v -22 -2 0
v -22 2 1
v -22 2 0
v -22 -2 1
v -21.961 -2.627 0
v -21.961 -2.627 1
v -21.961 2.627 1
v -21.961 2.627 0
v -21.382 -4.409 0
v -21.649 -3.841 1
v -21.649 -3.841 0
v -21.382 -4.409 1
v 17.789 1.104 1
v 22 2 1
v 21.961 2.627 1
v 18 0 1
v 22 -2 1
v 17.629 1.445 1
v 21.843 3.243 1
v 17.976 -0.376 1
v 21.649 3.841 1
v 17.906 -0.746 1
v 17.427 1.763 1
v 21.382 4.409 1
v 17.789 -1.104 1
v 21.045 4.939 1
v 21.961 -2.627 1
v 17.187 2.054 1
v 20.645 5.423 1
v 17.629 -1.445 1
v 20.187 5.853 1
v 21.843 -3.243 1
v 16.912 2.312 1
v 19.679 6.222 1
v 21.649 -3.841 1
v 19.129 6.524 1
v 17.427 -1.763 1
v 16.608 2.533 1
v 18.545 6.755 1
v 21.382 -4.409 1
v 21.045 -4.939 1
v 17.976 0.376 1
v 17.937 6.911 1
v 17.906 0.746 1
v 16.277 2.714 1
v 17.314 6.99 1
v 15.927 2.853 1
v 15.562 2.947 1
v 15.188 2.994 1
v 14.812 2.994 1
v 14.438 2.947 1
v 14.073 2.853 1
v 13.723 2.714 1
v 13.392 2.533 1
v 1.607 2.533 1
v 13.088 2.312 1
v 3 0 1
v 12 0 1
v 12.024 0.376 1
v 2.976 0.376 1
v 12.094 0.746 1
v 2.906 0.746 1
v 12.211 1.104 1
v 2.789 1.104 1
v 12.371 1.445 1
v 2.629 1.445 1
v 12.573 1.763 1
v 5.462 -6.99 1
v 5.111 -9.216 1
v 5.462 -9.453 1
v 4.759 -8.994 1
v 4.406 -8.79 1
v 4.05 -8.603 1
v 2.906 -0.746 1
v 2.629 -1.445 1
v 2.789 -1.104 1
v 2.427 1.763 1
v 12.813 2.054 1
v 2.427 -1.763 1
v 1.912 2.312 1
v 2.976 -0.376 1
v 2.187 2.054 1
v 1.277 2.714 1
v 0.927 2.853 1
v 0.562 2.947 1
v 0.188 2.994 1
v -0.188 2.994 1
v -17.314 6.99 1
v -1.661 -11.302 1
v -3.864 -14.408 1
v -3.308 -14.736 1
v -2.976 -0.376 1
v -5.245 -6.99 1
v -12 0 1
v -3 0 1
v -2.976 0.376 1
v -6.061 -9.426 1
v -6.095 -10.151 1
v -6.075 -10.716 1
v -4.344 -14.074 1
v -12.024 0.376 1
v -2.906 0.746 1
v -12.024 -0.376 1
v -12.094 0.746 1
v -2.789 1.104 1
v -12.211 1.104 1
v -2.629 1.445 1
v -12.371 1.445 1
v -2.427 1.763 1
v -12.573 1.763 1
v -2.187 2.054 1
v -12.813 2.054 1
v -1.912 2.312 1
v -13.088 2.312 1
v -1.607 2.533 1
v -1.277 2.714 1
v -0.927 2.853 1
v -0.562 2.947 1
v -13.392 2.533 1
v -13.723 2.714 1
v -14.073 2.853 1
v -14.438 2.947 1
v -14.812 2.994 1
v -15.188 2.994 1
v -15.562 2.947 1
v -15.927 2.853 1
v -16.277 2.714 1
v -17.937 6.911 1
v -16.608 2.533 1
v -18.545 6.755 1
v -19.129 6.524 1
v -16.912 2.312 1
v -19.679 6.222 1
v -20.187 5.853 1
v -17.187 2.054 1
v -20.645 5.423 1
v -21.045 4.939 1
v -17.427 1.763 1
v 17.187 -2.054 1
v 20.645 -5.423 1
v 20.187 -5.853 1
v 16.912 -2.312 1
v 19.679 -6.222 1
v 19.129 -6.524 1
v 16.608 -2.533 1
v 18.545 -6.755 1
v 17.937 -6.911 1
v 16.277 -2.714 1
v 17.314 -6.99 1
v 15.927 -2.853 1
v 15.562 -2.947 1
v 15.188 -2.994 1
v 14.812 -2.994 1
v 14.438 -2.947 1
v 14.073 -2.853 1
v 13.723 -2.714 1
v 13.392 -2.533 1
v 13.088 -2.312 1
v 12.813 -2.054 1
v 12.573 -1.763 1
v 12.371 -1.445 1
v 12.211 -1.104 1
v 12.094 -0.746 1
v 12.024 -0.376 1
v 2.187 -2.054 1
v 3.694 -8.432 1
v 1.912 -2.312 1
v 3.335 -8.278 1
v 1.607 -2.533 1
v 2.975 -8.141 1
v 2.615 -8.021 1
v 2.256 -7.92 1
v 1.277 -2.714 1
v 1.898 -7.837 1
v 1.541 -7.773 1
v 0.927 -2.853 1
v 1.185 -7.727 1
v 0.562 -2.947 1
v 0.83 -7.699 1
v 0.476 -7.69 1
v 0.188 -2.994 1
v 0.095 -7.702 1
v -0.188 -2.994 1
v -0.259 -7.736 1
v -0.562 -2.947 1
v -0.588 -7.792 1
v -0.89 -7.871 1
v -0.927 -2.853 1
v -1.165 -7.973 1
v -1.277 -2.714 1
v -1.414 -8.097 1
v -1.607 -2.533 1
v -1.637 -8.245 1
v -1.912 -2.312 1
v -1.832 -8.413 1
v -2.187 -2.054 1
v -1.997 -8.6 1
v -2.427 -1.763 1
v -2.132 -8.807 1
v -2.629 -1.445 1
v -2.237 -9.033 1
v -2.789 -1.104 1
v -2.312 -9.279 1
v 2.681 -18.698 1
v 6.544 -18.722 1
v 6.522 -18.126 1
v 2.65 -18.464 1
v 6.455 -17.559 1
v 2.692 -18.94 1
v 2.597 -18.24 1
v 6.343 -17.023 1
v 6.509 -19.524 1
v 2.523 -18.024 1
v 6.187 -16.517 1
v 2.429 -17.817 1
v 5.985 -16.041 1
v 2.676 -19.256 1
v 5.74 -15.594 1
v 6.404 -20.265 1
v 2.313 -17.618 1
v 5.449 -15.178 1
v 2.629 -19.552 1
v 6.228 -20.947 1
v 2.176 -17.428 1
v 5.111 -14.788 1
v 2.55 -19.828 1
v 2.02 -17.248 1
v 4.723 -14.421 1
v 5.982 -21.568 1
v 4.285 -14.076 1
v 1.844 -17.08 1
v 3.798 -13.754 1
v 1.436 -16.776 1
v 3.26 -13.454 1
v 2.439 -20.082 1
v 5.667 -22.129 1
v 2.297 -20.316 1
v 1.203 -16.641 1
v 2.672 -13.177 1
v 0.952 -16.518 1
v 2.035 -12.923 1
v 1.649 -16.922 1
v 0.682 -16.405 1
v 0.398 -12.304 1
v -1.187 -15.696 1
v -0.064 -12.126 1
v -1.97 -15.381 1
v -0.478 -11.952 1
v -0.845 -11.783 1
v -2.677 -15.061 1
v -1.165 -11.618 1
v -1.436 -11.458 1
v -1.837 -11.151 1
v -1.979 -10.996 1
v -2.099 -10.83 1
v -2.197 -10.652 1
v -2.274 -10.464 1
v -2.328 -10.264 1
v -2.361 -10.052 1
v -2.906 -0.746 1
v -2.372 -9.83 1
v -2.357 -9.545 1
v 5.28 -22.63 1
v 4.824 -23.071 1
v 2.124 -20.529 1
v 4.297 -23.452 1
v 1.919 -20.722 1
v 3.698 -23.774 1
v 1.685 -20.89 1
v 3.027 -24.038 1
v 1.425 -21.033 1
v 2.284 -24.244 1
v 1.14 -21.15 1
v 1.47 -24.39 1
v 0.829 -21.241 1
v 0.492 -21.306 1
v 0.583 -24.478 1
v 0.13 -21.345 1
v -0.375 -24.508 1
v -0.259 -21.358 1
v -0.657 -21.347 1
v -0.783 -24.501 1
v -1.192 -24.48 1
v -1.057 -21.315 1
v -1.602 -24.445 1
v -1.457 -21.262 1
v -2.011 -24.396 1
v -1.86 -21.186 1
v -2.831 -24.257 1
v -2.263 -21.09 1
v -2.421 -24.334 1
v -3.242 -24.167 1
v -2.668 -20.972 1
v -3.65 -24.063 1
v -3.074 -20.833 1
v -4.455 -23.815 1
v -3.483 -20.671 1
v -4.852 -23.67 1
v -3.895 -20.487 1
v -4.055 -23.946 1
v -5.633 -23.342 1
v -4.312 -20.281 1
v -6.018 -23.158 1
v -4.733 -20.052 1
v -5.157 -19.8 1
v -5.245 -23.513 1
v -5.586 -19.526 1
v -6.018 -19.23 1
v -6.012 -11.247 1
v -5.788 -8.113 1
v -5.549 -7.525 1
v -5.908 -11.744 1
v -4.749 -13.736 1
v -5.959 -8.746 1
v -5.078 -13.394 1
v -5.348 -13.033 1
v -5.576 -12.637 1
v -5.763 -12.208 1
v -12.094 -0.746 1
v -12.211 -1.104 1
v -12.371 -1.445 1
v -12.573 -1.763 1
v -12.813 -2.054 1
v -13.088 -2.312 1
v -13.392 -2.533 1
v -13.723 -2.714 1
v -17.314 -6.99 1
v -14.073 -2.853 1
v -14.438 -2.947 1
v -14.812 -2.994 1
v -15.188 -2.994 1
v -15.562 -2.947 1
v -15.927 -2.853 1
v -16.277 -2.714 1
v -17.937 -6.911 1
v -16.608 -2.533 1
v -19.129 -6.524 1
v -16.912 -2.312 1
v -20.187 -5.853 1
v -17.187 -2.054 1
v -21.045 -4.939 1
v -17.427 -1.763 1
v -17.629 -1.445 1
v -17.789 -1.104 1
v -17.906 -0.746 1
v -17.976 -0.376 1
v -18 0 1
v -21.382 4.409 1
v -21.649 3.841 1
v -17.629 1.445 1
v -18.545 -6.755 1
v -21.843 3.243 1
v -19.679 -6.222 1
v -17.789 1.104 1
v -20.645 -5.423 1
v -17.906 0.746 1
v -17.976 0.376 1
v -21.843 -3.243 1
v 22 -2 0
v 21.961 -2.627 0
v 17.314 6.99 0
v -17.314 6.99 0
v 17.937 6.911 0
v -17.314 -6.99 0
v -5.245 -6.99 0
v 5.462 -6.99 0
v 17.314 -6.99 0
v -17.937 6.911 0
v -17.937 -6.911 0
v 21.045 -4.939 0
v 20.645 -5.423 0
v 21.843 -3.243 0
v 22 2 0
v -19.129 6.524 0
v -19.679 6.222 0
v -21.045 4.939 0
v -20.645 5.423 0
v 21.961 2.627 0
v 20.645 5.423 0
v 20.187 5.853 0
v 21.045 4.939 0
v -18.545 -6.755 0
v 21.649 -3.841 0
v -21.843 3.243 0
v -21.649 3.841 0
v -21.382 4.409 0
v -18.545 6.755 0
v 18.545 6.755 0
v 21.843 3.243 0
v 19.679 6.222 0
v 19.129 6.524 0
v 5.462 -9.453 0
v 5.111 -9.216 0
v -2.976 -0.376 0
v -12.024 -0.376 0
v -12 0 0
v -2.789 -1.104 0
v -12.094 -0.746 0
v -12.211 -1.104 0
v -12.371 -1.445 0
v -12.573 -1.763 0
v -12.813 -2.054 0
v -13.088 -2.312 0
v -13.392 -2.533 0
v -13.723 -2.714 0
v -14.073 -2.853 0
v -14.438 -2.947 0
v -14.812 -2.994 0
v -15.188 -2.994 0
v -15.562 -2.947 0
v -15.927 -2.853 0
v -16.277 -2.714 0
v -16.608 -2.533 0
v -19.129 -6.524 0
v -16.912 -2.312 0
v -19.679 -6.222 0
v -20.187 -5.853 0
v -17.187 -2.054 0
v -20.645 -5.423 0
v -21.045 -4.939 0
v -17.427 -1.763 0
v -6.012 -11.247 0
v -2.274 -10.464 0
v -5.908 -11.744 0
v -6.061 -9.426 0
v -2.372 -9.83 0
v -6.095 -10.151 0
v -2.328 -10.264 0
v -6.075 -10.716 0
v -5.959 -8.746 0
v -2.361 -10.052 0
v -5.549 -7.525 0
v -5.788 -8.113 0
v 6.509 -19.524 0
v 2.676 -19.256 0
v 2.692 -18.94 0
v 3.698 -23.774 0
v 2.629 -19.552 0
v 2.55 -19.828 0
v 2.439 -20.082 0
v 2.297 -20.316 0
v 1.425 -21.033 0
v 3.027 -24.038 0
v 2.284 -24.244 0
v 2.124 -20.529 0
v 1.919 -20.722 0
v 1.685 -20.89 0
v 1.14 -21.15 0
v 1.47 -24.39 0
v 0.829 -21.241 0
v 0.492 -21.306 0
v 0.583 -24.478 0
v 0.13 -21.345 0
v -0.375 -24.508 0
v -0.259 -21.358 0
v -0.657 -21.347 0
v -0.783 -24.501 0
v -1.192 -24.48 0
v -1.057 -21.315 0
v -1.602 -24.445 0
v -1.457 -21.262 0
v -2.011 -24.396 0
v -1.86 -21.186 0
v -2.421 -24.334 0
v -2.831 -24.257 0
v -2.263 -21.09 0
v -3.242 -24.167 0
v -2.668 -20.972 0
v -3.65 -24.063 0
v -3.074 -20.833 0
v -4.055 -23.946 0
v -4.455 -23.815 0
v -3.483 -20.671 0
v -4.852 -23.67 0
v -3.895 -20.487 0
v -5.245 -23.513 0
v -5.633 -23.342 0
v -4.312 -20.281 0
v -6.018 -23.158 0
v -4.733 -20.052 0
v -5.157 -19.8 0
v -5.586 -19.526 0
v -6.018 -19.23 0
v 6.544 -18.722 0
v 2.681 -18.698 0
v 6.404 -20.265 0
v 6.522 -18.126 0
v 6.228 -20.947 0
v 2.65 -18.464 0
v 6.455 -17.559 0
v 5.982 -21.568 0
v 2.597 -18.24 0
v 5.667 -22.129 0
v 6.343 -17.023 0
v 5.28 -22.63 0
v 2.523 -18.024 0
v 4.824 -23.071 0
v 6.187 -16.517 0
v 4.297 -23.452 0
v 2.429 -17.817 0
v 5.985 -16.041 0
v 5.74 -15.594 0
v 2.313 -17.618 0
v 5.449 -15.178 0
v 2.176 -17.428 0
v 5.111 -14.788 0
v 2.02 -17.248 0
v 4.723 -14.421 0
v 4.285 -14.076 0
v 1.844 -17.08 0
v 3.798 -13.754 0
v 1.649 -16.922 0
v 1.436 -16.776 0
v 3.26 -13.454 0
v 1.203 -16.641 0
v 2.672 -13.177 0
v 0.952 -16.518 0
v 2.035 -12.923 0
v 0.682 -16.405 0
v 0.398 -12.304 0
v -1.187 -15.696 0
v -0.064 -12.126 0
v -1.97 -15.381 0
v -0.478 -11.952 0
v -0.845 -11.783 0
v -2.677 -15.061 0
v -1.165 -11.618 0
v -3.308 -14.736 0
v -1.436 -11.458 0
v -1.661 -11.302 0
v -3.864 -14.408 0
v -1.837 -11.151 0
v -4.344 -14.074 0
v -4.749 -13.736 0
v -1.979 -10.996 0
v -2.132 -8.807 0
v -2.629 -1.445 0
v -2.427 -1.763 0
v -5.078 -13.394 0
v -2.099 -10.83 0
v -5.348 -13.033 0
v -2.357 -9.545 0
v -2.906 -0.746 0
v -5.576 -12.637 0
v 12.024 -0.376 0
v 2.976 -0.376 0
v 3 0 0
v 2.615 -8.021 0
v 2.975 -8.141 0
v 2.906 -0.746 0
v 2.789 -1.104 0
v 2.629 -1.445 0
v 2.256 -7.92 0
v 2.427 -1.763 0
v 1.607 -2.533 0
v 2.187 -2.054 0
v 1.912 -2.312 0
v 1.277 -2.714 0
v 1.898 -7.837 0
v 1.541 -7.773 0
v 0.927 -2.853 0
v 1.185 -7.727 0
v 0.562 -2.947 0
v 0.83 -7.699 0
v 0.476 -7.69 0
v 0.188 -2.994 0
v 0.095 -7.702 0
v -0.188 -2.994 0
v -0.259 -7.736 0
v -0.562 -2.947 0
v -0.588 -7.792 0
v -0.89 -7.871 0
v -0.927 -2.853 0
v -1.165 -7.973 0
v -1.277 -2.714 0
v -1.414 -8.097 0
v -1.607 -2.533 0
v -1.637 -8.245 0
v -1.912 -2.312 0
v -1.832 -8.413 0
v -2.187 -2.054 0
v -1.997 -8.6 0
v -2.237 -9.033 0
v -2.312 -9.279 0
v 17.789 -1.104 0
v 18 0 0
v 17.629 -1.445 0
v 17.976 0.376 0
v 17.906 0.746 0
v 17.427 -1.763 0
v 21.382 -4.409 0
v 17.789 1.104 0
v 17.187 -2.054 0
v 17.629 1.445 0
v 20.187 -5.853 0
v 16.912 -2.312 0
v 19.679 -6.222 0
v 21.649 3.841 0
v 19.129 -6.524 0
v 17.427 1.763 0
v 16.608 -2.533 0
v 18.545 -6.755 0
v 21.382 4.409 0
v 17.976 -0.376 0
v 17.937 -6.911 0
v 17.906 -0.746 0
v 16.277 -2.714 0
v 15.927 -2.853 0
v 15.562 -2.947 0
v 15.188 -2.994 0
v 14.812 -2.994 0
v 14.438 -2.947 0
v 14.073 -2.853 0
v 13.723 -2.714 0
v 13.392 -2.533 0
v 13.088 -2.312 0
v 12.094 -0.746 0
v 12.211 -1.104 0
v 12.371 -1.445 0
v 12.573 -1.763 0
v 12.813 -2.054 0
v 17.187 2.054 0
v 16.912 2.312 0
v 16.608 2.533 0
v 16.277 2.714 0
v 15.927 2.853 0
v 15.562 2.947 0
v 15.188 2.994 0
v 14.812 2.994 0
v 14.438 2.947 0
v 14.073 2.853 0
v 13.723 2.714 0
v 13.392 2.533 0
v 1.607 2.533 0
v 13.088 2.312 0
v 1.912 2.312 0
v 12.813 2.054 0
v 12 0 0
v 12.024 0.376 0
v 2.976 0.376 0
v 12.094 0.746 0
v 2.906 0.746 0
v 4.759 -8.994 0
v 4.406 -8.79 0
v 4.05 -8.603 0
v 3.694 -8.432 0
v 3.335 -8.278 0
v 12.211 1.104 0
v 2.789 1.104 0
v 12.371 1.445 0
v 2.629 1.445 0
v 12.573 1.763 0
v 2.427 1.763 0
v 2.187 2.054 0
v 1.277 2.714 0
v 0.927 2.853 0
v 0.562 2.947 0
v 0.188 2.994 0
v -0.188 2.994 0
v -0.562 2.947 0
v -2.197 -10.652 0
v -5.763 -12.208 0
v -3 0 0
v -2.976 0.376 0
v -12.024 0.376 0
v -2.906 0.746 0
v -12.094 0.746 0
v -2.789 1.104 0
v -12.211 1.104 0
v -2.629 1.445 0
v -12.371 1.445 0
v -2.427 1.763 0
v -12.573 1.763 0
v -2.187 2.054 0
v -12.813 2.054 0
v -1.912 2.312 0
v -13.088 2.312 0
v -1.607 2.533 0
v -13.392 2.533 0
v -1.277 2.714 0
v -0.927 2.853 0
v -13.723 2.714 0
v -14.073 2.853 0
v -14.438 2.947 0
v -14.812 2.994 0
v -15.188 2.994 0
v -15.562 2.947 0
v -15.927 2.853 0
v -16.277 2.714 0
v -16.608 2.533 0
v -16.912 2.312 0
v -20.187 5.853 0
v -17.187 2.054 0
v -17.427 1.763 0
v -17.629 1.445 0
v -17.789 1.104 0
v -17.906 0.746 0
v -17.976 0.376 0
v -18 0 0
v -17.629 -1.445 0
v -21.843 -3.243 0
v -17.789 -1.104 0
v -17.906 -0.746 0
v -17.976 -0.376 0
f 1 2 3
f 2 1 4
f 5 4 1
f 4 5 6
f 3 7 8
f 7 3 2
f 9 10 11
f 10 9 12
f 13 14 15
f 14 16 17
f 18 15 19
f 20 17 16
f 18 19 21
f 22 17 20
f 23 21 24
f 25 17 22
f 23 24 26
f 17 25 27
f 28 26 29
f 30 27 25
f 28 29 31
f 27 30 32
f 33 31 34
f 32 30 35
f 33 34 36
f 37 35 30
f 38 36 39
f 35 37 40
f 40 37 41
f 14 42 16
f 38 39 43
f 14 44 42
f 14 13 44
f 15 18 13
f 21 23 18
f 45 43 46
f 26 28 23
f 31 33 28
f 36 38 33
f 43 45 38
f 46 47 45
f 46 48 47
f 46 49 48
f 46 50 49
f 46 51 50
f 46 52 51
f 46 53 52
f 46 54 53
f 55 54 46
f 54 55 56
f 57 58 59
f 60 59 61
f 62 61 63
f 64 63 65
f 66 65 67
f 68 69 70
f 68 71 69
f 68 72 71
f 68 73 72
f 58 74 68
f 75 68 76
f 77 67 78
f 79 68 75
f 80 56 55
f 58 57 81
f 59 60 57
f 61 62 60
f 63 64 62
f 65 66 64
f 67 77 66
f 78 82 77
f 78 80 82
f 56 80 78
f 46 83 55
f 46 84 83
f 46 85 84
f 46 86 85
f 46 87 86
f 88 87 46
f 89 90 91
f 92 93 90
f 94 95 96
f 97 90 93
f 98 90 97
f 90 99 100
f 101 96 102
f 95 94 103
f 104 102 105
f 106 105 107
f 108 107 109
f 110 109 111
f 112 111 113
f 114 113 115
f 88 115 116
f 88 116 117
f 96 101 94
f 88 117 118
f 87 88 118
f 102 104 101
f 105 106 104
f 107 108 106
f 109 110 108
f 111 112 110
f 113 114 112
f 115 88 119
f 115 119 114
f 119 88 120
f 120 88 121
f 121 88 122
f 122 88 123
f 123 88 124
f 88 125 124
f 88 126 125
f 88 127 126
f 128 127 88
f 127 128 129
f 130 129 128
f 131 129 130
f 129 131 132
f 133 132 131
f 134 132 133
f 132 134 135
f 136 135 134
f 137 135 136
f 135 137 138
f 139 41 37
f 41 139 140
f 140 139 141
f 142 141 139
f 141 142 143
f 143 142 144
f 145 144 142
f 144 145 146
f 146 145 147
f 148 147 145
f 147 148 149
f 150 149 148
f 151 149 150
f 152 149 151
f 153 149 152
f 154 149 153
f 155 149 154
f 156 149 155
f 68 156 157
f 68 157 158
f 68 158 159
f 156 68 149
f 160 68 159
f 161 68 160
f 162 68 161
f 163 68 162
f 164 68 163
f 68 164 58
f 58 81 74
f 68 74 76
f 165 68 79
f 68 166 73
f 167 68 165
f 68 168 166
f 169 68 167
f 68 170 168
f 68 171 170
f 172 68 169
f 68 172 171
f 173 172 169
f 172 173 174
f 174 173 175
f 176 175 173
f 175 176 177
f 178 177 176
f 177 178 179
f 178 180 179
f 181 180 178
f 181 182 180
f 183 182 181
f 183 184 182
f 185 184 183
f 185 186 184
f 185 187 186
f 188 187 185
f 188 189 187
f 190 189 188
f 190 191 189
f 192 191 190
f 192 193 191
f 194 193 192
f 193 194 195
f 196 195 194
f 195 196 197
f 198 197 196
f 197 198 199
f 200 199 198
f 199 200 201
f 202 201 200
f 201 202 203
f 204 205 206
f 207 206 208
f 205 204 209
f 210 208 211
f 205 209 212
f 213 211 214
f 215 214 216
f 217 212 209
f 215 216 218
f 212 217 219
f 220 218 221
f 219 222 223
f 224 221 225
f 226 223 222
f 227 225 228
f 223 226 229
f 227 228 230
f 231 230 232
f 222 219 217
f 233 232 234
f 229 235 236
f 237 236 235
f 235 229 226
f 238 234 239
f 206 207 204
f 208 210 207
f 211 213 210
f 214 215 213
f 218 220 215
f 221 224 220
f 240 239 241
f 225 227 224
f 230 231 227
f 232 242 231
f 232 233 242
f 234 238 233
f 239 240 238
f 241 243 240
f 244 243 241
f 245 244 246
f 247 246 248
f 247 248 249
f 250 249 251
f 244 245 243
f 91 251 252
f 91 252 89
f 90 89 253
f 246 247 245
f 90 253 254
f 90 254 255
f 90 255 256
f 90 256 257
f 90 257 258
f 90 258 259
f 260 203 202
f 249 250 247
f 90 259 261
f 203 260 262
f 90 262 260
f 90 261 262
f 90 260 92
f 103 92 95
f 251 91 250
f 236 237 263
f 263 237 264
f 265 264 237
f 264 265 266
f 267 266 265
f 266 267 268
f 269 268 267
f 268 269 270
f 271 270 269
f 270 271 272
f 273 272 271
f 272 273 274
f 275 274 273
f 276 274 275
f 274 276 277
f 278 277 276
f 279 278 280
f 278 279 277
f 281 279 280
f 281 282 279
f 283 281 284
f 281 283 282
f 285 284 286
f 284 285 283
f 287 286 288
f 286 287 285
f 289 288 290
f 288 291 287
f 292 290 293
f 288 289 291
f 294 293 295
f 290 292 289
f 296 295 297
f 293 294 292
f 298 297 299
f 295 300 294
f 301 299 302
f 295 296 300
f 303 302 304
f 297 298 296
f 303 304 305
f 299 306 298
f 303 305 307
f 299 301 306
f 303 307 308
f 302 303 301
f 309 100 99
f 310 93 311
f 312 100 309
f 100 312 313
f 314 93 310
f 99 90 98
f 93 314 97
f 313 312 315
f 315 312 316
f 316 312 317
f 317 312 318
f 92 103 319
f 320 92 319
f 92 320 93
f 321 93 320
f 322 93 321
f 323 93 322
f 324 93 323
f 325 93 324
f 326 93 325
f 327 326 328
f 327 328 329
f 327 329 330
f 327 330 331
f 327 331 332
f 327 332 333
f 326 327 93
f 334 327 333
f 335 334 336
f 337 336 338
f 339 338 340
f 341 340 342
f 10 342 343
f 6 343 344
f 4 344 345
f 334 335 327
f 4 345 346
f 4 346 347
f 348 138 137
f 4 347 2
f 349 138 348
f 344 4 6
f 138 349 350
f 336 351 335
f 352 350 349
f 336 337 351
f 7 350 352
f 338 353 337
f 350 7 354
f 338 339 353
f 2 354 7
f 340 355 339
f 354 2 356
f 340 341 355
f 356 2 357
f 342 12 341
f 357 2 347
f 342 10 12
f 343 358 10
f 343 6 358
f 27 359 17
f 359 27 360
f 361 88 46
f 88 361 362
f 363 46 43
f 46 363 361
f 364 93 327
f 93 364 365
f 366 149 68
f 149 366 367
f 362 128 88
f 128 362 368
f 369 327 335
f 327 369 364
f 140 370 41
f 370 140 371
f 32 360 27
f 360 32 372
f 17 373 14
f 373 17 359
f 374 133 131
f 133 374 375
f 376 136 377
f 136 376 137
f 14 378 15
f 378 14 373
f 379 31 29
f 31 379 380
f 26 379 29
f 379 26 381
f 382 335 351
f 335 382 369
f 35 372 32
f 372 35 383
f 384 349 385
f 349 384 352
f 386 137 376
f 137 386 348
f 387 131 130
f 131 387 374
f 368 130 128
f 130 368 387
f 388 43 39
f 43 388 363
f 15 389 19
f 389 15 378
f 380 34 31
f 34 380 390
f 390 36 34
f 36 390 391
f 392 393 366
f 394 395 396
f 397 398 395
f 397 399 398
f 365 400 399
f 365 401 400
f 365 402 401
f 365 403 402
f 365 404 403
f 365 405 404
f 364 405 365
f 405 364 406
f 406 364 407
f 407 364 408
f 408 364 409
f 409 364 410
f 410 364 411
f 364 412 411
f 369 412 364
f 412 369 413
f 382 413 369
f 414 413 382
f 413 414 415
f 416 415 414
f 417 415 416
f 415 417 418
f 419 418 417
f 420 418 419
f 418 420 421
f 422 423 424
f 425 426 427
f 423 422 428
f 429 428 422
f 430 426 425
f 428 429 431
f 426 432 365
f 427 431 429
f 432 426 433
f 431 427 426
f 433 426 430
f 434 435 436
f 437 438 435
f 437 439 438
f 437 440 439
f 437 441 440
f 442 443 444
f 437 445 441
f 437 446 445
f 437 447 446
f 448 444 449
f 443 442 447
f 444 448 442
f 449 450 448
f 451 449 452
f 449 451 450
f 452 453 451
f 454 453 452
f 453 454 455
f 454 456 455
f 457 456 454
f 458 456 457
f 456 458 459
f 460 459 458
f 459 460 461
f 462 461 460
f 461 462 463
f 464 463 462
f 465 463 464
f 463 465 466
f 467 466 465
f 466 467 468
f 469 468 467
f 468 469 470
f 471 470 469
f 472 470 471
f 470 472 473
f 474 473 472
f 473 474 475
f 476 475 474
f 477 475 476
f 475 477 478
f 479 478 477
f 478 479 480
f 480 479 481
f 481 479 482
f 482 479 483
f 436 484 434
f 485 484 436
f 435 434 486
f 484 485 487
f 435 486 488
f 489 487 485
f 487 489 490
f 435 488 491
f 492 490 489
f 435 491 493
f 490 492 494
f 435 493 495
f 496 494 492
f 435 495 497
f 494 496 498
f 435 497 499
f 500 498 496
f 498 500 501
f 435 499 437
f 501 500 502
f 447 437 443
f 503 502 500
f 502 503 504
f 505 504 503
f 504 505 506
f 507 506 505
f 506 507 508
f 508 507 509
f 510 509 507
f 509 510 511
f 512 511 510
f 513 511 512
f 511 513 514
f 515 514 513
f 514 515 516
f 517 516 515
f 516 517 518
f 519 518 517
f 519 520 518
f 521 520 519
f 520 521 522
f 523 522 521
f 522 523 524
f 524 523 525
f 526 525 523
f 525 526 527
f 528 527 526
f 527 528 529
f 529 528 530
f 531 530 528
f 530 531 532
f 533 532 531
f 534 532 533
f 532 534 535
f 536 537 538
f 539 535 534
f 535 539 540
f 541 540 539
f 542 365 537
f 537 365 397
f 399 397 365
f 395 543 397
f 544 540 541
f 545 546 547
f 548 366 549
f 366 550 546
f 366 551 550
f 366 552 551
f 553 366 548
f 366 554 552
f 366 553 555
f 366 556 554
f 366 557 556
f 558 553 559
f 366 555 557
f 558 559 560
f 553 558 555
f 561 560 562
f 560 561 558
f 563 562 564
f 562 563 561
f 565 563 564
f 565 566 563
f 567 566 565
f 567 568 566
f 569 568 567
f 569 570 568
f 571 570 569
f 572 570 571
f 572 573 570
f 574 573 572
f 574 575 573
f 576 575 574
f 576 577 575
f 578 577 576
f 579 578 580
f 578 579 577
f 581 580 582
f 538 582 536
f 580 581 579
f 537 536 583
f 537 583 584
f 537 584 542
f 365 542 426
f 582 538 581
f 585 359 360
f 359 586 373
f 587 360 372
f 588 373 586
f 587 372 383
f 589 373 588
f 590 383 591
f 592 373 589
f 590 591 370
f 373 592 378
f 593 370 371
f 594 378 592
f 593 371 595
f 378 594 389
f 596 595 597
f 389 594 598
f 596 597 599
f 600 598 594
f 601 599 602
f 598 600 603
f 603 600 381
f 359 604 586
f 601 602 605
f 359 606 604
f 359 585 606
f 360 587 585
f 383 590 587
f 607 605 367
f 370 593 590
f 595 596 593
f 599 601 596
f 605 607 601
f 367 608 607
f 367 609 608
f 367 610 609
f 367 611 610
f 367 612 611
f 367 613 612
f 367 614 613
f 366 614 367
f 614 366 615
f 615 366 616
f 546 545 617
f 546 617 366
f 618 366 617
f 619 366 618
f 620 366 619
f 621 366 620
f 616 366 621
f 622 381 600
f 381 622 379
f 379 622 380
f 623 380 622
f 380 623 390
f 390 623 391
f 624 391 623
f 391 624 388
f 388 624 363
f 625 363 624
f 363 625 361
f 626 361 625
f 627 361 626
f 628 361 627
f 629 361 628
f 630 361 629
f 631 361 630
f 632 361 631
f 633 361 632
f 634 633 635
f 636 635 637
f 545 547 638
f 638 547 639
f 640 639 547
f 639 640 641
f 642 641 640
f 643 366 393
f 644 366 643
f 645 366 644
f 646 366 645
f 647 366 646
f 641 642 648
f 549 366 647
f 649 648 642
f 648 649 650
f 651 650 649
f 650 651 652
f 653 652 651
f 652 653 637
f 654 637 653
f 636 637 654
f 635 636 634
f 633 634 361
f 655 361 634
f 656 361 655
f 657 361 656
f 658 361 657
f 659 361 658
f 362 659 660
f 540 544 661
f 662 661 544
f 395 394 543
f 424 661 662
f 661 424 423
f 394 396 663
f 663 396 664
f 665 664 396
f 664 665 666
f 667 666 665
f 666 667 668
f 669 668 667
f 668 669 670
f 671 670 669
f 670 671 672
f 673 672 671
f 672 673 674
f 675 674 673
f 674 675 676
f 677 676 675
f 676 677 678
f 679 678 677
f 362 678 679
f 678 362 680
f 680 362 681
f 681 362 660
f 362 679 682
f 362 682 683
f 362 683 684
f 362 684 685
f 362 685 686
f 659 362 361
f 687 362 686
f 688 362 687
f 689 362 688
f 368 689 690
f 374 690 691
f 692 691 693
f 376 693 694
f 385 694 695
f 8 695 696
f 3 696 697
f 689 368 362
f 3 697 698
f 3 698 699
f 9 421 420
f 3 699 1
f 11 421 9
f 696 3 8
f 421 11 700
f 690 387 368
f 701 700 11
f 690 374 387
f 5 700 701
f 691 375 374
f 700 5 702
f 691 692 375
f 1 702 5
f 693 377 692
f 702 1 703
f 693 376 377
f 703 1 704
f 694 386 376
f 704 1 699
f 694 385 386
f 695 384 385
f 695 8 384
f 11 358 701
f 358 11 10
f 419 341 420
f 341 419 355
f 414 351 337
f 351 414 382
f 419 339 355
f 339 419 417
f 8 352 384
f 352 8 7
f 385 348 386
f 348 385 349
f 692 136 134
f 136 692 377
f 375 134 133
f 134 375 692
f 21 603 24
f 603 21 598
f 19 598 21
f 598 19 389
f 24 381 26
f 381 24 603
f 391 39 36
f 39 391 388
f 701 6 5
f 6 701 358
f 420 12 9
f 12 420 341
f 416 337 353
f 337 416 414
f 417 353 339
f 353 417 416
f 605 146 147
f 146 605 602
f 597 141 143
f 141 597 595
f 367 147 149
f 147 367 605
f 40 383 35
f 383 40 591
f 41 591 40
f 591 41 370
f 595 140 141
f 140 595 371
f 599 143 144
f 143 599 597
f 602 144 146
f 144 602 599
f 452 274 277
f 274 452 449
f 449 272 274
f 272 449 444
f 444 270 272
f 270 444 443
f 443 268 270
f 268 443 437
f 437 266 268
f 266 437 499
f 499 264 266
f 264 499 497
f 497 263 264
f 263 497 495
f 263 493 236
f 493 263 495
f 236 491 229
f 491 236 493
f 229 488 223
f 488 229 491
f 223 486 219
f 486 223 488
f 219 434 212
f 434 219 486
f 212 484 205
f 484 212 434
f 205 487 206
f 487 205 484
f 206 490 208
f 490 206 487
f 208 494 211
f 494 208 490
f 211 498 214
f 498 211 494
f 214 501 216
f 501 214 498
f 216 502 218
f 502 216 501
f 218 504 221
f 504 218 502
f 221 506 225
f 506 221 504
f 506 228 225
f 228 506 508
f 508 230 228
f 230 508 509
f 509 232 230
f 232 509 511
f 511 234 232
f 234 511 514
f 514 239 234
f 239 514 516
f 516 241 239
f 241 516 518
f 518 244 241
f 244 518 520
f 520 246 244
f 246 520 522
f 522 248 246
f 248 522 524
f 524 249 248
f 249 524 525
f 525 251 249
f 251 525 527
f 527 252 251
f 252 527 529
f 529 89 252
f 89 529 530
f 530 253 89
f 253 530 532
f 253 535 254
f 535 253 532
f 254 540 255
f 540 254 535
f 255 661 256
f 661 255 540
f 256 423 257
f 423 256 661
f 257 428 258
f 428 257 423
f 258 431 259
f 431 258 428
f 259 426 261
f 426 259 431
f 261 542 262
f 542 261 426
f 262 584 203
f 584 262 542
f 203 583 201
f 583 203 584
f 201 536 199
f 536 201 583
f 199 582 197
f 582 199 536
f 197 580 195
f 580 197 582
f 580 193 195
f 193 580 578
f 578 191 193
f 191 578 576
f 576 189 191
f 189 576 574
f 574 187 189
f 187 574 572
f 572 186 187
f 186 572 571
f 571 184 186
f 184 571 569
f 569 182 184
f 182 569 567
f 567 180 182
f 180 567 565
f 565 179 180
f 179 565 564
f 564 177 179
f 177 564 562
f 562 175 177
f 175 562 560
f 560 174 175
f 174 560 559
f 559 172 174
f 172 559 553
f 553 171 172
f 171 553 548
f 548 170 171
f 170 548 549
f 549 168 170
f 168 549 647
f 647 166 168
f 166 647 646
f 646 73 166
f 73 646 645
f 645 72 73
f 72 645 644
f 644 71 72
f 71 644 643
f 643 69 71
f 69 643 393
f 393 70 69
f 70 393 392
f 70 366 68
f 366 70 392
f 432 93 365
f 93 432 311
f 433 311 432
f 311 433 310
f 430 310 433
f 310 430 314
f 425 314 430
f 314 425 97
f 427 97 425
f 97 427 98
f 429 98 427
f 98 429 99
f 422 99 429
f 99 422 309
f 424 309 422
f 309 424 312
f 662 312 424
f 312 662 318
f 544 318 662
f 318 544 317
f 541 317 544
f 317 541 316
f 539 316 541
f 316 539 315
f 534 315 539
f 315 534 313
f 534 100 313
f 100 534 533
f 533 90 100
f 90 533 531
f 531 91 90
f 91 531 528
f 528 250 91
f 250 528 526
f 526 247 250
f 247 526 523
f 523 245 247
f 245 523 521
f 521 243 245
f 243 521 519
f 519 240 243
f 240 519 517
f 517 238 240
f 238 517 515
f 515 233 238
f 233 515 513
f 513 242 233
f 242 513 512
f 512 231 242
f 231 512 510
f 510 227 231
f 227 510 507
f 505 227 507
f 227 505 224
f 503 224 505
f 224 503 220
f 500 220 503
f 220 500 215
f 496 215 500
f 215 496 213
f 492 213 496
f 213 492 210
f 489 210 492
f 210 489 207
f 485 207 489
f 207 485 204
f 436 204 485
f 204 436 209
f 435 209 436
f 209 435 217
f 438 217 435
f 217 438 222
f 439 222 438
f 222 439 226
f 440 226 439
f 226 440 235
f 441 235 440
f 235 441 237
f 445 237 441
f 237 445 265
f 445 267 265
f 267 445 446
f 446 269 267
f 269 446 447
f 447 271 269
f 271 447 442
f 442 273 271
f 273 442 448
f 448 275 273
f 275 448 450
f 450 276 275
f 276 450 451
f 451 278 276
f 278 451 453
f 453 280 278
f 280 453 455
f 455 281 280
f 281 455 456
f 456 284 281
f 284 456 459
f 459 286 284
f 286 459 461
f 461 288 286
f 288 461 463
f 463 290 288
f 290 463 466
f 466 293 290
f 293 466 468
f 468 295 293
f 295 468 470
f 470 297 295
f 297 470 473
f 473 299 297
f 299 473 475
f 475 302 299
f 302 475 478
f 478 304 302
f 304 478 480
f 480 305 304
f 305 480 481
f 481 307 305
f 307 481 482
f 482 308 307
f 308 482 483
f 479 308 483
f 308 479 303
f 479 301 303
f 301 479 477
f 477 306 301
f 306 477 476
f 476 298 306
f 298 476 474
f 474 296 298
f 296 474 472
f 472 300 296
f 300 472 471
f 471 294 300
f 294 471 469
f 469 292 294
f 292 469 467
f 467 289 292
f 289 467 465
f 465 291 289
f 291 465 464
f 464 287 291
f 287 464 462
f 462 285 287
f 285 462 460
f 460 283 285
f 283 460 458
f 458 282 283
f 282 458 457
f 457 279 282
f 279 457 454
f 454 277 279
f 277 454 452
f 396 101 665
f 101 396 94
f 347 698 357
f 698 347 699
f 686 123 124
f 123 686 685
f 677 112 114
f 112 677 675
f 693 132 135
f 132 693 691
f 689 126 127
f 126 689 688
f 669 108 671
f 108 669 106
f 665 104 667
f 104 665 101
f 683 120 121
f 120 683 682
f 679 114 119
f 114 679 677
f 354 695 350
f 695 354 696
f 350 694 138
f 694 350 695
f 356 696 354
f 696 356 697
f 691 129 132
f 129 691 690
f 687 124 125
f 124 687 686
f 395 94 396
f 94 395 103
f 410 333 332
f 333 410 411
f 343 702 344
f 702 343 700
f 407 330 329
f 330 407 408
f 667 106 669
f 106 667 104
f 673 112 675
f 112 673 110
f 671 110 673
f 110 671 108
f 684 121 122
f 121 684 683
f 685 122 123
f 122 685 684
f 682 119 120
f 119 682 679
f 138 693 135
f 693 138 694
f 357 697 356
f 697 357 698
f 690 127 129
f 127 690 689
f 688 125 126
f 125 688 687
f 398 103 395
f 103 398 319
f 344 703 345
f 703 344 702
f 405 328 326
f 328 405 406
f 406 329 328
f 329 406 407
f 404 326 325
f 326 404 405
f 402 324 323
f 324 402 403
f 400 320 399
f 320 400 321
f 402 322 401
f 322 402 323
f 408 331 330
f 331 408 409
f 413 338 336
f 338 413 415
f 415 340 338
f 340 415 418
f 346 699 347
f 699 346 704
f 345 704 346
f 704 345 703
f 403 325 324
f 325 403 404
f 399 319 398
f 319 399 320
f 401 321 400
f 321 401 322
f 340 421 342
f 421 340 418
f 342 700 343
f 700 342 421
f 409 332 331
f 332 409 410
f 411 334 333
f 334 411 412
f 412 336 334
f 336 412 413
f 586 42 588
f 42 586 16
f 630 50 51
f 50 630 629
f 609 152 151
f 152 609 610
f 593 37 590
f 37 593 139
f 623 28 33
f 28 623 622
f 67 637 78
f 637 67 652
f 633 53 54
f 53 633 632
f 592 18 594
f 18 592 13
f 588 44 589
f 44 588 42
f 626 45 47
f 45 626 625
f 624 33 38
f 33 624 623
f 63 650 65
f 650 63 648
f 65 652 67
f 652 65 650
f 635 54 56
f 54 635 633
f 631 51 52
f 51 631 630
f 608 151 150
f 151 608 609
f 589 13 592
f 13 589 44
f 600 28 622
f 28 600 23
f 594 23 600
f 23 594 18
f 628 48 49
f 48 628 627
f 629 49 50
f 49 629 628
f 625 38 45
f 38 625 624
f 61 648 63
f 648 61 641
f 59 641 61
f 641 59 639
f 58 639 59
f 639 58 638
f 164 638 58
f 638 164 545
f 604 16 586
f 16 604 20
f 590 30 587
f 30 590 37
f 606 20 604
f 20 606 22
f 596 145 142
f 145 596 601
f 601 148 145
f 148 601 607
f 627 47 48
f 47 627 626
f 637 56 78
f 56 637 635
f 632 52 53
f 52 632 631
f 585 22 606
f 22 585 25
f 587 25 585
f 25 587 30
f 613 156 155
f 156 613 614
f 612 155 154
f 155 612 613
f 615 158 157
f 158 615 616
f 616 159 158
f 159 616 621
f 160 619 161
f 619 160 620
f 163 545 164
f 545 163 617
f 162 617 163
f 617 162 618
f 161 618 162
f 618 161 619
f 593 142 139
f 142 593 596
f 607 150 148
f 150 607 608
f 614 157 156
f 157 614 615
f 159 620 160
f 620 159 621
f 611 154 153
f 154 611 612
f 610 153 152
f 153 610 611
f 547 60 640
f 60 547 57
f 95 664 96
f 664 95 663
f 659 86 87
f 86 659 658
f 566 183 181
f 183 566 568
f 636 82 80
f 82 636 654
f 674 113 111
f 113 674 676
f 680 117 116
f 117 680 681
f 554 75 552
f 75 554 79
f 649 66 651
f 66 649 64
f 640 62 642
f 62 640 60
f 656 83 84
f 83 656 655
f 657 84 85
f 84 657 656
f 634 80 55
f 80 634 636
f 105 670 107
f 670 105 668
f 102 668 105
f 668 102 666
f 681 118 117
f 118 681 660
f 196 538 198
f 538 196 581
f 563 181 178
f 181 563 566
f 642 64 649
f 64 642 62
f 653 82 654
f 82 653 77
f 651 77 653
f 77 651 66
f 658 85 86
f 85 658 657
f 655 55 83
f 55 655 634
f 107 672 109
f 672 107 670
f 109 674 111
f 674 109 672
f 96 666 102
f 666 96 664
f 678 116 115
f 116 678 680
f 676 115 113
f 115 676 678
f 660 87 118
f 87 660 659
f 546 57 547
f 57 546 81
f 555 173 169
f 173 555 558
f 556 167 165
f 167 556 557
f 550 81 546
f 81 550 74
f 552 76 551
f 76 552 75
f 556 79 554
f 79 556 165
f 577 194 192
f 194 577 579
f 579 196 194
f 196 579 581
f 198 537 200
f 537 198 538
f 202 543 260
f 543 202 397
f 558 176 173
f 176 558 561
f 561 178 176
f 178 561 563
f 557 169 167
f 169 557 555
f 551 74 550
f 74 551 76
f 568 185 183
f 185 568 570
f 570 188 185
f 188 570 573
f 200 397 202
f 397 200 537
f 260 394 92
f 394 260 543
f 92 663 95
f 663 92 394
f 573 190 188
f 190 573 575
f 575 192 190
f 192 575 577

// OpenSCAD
$fn = 50;


difference() {
	union() {
		translate(v = [0, 0, 0]) {
			rotate(a = [0, 0, 0]) {
				hull() {
					translate(v = [-17.0000000000, 2.0000000000, 0]) {
						rotate(a = [0, 0, 0]) {
							translate(v = [0, 0, 0]) {
								rotate(a = [0, 0, 0]) {
									cylinder(h = 1, r = 5);
								}
							}
						}
					}
					translate(v = [17.0000000000, 2.0000000000, 0]) {
						rotate(a = [0, 0, 0]) {
							translate(v = [0, 0, 0]) {
								rotate(a = [0, 0, 0]) {
									cylinder(h = 1, r = 5);
								}
							}
						}
					}
					translate(v = [-17.0000000000, -2.0000000000, 0]) {
						rotate(a = [0, 0, 0]) {
							translate(v = [0, 0, 0]) {
								rotate(a = [0, 0, 0]) {
									cylinder(h = 1, r = 5);
								}
							}
						}
					}
					translate(v = [17.0000000000, -2.0000000000, 0]) {
						rotate(a = [0, 0, 0]) {
							translate(v = [0, 0, 0]) {
								rotate(a = [0, 0, 0]) {
									cylinder(h = 1, r = 5);
								}
							}
						}
					}
				}
			}
		}
		translate(v = [0, -5, 0]) {
			rotate(a = [0, 0, 0]) {
				linear_extrude(height = 1) {
					text(font = "DejaVu Sans Mono:style=Bold", halign = "center", size = 19.0000000000, text = "S", valign = "top");
				}
			}
		}
	}
	union() {
		translate(v = [-15.0000000000, 0.0000000000, -125.0000000000]) {
			rotate(a = [0, 0, 0]) {
				cylinder(h = 250, r = 3.0000000000);
			}
		}
		translate(v = [15.0000000000, 0.0000000000, -125.0000000000]) {
			rotate(a = [0, 0, 0]) {
				cylinder(h = 250, r = 3.0000000000);
			}
		}
		translate(v = [15.0000000000, 0.0000000000, -125.0000000000]) {
			rotate(a = [0, 0, 0]) {
				cylinder(h = 250, r = 3.0000000000);
			}
		}
		translate(v = [0, 0, -125.0000000000]) {
			rotate(a = [0, 0, 0]) {
				cylinder(h = 250, r = 3.0000000000);
			}
		}
	}
}
